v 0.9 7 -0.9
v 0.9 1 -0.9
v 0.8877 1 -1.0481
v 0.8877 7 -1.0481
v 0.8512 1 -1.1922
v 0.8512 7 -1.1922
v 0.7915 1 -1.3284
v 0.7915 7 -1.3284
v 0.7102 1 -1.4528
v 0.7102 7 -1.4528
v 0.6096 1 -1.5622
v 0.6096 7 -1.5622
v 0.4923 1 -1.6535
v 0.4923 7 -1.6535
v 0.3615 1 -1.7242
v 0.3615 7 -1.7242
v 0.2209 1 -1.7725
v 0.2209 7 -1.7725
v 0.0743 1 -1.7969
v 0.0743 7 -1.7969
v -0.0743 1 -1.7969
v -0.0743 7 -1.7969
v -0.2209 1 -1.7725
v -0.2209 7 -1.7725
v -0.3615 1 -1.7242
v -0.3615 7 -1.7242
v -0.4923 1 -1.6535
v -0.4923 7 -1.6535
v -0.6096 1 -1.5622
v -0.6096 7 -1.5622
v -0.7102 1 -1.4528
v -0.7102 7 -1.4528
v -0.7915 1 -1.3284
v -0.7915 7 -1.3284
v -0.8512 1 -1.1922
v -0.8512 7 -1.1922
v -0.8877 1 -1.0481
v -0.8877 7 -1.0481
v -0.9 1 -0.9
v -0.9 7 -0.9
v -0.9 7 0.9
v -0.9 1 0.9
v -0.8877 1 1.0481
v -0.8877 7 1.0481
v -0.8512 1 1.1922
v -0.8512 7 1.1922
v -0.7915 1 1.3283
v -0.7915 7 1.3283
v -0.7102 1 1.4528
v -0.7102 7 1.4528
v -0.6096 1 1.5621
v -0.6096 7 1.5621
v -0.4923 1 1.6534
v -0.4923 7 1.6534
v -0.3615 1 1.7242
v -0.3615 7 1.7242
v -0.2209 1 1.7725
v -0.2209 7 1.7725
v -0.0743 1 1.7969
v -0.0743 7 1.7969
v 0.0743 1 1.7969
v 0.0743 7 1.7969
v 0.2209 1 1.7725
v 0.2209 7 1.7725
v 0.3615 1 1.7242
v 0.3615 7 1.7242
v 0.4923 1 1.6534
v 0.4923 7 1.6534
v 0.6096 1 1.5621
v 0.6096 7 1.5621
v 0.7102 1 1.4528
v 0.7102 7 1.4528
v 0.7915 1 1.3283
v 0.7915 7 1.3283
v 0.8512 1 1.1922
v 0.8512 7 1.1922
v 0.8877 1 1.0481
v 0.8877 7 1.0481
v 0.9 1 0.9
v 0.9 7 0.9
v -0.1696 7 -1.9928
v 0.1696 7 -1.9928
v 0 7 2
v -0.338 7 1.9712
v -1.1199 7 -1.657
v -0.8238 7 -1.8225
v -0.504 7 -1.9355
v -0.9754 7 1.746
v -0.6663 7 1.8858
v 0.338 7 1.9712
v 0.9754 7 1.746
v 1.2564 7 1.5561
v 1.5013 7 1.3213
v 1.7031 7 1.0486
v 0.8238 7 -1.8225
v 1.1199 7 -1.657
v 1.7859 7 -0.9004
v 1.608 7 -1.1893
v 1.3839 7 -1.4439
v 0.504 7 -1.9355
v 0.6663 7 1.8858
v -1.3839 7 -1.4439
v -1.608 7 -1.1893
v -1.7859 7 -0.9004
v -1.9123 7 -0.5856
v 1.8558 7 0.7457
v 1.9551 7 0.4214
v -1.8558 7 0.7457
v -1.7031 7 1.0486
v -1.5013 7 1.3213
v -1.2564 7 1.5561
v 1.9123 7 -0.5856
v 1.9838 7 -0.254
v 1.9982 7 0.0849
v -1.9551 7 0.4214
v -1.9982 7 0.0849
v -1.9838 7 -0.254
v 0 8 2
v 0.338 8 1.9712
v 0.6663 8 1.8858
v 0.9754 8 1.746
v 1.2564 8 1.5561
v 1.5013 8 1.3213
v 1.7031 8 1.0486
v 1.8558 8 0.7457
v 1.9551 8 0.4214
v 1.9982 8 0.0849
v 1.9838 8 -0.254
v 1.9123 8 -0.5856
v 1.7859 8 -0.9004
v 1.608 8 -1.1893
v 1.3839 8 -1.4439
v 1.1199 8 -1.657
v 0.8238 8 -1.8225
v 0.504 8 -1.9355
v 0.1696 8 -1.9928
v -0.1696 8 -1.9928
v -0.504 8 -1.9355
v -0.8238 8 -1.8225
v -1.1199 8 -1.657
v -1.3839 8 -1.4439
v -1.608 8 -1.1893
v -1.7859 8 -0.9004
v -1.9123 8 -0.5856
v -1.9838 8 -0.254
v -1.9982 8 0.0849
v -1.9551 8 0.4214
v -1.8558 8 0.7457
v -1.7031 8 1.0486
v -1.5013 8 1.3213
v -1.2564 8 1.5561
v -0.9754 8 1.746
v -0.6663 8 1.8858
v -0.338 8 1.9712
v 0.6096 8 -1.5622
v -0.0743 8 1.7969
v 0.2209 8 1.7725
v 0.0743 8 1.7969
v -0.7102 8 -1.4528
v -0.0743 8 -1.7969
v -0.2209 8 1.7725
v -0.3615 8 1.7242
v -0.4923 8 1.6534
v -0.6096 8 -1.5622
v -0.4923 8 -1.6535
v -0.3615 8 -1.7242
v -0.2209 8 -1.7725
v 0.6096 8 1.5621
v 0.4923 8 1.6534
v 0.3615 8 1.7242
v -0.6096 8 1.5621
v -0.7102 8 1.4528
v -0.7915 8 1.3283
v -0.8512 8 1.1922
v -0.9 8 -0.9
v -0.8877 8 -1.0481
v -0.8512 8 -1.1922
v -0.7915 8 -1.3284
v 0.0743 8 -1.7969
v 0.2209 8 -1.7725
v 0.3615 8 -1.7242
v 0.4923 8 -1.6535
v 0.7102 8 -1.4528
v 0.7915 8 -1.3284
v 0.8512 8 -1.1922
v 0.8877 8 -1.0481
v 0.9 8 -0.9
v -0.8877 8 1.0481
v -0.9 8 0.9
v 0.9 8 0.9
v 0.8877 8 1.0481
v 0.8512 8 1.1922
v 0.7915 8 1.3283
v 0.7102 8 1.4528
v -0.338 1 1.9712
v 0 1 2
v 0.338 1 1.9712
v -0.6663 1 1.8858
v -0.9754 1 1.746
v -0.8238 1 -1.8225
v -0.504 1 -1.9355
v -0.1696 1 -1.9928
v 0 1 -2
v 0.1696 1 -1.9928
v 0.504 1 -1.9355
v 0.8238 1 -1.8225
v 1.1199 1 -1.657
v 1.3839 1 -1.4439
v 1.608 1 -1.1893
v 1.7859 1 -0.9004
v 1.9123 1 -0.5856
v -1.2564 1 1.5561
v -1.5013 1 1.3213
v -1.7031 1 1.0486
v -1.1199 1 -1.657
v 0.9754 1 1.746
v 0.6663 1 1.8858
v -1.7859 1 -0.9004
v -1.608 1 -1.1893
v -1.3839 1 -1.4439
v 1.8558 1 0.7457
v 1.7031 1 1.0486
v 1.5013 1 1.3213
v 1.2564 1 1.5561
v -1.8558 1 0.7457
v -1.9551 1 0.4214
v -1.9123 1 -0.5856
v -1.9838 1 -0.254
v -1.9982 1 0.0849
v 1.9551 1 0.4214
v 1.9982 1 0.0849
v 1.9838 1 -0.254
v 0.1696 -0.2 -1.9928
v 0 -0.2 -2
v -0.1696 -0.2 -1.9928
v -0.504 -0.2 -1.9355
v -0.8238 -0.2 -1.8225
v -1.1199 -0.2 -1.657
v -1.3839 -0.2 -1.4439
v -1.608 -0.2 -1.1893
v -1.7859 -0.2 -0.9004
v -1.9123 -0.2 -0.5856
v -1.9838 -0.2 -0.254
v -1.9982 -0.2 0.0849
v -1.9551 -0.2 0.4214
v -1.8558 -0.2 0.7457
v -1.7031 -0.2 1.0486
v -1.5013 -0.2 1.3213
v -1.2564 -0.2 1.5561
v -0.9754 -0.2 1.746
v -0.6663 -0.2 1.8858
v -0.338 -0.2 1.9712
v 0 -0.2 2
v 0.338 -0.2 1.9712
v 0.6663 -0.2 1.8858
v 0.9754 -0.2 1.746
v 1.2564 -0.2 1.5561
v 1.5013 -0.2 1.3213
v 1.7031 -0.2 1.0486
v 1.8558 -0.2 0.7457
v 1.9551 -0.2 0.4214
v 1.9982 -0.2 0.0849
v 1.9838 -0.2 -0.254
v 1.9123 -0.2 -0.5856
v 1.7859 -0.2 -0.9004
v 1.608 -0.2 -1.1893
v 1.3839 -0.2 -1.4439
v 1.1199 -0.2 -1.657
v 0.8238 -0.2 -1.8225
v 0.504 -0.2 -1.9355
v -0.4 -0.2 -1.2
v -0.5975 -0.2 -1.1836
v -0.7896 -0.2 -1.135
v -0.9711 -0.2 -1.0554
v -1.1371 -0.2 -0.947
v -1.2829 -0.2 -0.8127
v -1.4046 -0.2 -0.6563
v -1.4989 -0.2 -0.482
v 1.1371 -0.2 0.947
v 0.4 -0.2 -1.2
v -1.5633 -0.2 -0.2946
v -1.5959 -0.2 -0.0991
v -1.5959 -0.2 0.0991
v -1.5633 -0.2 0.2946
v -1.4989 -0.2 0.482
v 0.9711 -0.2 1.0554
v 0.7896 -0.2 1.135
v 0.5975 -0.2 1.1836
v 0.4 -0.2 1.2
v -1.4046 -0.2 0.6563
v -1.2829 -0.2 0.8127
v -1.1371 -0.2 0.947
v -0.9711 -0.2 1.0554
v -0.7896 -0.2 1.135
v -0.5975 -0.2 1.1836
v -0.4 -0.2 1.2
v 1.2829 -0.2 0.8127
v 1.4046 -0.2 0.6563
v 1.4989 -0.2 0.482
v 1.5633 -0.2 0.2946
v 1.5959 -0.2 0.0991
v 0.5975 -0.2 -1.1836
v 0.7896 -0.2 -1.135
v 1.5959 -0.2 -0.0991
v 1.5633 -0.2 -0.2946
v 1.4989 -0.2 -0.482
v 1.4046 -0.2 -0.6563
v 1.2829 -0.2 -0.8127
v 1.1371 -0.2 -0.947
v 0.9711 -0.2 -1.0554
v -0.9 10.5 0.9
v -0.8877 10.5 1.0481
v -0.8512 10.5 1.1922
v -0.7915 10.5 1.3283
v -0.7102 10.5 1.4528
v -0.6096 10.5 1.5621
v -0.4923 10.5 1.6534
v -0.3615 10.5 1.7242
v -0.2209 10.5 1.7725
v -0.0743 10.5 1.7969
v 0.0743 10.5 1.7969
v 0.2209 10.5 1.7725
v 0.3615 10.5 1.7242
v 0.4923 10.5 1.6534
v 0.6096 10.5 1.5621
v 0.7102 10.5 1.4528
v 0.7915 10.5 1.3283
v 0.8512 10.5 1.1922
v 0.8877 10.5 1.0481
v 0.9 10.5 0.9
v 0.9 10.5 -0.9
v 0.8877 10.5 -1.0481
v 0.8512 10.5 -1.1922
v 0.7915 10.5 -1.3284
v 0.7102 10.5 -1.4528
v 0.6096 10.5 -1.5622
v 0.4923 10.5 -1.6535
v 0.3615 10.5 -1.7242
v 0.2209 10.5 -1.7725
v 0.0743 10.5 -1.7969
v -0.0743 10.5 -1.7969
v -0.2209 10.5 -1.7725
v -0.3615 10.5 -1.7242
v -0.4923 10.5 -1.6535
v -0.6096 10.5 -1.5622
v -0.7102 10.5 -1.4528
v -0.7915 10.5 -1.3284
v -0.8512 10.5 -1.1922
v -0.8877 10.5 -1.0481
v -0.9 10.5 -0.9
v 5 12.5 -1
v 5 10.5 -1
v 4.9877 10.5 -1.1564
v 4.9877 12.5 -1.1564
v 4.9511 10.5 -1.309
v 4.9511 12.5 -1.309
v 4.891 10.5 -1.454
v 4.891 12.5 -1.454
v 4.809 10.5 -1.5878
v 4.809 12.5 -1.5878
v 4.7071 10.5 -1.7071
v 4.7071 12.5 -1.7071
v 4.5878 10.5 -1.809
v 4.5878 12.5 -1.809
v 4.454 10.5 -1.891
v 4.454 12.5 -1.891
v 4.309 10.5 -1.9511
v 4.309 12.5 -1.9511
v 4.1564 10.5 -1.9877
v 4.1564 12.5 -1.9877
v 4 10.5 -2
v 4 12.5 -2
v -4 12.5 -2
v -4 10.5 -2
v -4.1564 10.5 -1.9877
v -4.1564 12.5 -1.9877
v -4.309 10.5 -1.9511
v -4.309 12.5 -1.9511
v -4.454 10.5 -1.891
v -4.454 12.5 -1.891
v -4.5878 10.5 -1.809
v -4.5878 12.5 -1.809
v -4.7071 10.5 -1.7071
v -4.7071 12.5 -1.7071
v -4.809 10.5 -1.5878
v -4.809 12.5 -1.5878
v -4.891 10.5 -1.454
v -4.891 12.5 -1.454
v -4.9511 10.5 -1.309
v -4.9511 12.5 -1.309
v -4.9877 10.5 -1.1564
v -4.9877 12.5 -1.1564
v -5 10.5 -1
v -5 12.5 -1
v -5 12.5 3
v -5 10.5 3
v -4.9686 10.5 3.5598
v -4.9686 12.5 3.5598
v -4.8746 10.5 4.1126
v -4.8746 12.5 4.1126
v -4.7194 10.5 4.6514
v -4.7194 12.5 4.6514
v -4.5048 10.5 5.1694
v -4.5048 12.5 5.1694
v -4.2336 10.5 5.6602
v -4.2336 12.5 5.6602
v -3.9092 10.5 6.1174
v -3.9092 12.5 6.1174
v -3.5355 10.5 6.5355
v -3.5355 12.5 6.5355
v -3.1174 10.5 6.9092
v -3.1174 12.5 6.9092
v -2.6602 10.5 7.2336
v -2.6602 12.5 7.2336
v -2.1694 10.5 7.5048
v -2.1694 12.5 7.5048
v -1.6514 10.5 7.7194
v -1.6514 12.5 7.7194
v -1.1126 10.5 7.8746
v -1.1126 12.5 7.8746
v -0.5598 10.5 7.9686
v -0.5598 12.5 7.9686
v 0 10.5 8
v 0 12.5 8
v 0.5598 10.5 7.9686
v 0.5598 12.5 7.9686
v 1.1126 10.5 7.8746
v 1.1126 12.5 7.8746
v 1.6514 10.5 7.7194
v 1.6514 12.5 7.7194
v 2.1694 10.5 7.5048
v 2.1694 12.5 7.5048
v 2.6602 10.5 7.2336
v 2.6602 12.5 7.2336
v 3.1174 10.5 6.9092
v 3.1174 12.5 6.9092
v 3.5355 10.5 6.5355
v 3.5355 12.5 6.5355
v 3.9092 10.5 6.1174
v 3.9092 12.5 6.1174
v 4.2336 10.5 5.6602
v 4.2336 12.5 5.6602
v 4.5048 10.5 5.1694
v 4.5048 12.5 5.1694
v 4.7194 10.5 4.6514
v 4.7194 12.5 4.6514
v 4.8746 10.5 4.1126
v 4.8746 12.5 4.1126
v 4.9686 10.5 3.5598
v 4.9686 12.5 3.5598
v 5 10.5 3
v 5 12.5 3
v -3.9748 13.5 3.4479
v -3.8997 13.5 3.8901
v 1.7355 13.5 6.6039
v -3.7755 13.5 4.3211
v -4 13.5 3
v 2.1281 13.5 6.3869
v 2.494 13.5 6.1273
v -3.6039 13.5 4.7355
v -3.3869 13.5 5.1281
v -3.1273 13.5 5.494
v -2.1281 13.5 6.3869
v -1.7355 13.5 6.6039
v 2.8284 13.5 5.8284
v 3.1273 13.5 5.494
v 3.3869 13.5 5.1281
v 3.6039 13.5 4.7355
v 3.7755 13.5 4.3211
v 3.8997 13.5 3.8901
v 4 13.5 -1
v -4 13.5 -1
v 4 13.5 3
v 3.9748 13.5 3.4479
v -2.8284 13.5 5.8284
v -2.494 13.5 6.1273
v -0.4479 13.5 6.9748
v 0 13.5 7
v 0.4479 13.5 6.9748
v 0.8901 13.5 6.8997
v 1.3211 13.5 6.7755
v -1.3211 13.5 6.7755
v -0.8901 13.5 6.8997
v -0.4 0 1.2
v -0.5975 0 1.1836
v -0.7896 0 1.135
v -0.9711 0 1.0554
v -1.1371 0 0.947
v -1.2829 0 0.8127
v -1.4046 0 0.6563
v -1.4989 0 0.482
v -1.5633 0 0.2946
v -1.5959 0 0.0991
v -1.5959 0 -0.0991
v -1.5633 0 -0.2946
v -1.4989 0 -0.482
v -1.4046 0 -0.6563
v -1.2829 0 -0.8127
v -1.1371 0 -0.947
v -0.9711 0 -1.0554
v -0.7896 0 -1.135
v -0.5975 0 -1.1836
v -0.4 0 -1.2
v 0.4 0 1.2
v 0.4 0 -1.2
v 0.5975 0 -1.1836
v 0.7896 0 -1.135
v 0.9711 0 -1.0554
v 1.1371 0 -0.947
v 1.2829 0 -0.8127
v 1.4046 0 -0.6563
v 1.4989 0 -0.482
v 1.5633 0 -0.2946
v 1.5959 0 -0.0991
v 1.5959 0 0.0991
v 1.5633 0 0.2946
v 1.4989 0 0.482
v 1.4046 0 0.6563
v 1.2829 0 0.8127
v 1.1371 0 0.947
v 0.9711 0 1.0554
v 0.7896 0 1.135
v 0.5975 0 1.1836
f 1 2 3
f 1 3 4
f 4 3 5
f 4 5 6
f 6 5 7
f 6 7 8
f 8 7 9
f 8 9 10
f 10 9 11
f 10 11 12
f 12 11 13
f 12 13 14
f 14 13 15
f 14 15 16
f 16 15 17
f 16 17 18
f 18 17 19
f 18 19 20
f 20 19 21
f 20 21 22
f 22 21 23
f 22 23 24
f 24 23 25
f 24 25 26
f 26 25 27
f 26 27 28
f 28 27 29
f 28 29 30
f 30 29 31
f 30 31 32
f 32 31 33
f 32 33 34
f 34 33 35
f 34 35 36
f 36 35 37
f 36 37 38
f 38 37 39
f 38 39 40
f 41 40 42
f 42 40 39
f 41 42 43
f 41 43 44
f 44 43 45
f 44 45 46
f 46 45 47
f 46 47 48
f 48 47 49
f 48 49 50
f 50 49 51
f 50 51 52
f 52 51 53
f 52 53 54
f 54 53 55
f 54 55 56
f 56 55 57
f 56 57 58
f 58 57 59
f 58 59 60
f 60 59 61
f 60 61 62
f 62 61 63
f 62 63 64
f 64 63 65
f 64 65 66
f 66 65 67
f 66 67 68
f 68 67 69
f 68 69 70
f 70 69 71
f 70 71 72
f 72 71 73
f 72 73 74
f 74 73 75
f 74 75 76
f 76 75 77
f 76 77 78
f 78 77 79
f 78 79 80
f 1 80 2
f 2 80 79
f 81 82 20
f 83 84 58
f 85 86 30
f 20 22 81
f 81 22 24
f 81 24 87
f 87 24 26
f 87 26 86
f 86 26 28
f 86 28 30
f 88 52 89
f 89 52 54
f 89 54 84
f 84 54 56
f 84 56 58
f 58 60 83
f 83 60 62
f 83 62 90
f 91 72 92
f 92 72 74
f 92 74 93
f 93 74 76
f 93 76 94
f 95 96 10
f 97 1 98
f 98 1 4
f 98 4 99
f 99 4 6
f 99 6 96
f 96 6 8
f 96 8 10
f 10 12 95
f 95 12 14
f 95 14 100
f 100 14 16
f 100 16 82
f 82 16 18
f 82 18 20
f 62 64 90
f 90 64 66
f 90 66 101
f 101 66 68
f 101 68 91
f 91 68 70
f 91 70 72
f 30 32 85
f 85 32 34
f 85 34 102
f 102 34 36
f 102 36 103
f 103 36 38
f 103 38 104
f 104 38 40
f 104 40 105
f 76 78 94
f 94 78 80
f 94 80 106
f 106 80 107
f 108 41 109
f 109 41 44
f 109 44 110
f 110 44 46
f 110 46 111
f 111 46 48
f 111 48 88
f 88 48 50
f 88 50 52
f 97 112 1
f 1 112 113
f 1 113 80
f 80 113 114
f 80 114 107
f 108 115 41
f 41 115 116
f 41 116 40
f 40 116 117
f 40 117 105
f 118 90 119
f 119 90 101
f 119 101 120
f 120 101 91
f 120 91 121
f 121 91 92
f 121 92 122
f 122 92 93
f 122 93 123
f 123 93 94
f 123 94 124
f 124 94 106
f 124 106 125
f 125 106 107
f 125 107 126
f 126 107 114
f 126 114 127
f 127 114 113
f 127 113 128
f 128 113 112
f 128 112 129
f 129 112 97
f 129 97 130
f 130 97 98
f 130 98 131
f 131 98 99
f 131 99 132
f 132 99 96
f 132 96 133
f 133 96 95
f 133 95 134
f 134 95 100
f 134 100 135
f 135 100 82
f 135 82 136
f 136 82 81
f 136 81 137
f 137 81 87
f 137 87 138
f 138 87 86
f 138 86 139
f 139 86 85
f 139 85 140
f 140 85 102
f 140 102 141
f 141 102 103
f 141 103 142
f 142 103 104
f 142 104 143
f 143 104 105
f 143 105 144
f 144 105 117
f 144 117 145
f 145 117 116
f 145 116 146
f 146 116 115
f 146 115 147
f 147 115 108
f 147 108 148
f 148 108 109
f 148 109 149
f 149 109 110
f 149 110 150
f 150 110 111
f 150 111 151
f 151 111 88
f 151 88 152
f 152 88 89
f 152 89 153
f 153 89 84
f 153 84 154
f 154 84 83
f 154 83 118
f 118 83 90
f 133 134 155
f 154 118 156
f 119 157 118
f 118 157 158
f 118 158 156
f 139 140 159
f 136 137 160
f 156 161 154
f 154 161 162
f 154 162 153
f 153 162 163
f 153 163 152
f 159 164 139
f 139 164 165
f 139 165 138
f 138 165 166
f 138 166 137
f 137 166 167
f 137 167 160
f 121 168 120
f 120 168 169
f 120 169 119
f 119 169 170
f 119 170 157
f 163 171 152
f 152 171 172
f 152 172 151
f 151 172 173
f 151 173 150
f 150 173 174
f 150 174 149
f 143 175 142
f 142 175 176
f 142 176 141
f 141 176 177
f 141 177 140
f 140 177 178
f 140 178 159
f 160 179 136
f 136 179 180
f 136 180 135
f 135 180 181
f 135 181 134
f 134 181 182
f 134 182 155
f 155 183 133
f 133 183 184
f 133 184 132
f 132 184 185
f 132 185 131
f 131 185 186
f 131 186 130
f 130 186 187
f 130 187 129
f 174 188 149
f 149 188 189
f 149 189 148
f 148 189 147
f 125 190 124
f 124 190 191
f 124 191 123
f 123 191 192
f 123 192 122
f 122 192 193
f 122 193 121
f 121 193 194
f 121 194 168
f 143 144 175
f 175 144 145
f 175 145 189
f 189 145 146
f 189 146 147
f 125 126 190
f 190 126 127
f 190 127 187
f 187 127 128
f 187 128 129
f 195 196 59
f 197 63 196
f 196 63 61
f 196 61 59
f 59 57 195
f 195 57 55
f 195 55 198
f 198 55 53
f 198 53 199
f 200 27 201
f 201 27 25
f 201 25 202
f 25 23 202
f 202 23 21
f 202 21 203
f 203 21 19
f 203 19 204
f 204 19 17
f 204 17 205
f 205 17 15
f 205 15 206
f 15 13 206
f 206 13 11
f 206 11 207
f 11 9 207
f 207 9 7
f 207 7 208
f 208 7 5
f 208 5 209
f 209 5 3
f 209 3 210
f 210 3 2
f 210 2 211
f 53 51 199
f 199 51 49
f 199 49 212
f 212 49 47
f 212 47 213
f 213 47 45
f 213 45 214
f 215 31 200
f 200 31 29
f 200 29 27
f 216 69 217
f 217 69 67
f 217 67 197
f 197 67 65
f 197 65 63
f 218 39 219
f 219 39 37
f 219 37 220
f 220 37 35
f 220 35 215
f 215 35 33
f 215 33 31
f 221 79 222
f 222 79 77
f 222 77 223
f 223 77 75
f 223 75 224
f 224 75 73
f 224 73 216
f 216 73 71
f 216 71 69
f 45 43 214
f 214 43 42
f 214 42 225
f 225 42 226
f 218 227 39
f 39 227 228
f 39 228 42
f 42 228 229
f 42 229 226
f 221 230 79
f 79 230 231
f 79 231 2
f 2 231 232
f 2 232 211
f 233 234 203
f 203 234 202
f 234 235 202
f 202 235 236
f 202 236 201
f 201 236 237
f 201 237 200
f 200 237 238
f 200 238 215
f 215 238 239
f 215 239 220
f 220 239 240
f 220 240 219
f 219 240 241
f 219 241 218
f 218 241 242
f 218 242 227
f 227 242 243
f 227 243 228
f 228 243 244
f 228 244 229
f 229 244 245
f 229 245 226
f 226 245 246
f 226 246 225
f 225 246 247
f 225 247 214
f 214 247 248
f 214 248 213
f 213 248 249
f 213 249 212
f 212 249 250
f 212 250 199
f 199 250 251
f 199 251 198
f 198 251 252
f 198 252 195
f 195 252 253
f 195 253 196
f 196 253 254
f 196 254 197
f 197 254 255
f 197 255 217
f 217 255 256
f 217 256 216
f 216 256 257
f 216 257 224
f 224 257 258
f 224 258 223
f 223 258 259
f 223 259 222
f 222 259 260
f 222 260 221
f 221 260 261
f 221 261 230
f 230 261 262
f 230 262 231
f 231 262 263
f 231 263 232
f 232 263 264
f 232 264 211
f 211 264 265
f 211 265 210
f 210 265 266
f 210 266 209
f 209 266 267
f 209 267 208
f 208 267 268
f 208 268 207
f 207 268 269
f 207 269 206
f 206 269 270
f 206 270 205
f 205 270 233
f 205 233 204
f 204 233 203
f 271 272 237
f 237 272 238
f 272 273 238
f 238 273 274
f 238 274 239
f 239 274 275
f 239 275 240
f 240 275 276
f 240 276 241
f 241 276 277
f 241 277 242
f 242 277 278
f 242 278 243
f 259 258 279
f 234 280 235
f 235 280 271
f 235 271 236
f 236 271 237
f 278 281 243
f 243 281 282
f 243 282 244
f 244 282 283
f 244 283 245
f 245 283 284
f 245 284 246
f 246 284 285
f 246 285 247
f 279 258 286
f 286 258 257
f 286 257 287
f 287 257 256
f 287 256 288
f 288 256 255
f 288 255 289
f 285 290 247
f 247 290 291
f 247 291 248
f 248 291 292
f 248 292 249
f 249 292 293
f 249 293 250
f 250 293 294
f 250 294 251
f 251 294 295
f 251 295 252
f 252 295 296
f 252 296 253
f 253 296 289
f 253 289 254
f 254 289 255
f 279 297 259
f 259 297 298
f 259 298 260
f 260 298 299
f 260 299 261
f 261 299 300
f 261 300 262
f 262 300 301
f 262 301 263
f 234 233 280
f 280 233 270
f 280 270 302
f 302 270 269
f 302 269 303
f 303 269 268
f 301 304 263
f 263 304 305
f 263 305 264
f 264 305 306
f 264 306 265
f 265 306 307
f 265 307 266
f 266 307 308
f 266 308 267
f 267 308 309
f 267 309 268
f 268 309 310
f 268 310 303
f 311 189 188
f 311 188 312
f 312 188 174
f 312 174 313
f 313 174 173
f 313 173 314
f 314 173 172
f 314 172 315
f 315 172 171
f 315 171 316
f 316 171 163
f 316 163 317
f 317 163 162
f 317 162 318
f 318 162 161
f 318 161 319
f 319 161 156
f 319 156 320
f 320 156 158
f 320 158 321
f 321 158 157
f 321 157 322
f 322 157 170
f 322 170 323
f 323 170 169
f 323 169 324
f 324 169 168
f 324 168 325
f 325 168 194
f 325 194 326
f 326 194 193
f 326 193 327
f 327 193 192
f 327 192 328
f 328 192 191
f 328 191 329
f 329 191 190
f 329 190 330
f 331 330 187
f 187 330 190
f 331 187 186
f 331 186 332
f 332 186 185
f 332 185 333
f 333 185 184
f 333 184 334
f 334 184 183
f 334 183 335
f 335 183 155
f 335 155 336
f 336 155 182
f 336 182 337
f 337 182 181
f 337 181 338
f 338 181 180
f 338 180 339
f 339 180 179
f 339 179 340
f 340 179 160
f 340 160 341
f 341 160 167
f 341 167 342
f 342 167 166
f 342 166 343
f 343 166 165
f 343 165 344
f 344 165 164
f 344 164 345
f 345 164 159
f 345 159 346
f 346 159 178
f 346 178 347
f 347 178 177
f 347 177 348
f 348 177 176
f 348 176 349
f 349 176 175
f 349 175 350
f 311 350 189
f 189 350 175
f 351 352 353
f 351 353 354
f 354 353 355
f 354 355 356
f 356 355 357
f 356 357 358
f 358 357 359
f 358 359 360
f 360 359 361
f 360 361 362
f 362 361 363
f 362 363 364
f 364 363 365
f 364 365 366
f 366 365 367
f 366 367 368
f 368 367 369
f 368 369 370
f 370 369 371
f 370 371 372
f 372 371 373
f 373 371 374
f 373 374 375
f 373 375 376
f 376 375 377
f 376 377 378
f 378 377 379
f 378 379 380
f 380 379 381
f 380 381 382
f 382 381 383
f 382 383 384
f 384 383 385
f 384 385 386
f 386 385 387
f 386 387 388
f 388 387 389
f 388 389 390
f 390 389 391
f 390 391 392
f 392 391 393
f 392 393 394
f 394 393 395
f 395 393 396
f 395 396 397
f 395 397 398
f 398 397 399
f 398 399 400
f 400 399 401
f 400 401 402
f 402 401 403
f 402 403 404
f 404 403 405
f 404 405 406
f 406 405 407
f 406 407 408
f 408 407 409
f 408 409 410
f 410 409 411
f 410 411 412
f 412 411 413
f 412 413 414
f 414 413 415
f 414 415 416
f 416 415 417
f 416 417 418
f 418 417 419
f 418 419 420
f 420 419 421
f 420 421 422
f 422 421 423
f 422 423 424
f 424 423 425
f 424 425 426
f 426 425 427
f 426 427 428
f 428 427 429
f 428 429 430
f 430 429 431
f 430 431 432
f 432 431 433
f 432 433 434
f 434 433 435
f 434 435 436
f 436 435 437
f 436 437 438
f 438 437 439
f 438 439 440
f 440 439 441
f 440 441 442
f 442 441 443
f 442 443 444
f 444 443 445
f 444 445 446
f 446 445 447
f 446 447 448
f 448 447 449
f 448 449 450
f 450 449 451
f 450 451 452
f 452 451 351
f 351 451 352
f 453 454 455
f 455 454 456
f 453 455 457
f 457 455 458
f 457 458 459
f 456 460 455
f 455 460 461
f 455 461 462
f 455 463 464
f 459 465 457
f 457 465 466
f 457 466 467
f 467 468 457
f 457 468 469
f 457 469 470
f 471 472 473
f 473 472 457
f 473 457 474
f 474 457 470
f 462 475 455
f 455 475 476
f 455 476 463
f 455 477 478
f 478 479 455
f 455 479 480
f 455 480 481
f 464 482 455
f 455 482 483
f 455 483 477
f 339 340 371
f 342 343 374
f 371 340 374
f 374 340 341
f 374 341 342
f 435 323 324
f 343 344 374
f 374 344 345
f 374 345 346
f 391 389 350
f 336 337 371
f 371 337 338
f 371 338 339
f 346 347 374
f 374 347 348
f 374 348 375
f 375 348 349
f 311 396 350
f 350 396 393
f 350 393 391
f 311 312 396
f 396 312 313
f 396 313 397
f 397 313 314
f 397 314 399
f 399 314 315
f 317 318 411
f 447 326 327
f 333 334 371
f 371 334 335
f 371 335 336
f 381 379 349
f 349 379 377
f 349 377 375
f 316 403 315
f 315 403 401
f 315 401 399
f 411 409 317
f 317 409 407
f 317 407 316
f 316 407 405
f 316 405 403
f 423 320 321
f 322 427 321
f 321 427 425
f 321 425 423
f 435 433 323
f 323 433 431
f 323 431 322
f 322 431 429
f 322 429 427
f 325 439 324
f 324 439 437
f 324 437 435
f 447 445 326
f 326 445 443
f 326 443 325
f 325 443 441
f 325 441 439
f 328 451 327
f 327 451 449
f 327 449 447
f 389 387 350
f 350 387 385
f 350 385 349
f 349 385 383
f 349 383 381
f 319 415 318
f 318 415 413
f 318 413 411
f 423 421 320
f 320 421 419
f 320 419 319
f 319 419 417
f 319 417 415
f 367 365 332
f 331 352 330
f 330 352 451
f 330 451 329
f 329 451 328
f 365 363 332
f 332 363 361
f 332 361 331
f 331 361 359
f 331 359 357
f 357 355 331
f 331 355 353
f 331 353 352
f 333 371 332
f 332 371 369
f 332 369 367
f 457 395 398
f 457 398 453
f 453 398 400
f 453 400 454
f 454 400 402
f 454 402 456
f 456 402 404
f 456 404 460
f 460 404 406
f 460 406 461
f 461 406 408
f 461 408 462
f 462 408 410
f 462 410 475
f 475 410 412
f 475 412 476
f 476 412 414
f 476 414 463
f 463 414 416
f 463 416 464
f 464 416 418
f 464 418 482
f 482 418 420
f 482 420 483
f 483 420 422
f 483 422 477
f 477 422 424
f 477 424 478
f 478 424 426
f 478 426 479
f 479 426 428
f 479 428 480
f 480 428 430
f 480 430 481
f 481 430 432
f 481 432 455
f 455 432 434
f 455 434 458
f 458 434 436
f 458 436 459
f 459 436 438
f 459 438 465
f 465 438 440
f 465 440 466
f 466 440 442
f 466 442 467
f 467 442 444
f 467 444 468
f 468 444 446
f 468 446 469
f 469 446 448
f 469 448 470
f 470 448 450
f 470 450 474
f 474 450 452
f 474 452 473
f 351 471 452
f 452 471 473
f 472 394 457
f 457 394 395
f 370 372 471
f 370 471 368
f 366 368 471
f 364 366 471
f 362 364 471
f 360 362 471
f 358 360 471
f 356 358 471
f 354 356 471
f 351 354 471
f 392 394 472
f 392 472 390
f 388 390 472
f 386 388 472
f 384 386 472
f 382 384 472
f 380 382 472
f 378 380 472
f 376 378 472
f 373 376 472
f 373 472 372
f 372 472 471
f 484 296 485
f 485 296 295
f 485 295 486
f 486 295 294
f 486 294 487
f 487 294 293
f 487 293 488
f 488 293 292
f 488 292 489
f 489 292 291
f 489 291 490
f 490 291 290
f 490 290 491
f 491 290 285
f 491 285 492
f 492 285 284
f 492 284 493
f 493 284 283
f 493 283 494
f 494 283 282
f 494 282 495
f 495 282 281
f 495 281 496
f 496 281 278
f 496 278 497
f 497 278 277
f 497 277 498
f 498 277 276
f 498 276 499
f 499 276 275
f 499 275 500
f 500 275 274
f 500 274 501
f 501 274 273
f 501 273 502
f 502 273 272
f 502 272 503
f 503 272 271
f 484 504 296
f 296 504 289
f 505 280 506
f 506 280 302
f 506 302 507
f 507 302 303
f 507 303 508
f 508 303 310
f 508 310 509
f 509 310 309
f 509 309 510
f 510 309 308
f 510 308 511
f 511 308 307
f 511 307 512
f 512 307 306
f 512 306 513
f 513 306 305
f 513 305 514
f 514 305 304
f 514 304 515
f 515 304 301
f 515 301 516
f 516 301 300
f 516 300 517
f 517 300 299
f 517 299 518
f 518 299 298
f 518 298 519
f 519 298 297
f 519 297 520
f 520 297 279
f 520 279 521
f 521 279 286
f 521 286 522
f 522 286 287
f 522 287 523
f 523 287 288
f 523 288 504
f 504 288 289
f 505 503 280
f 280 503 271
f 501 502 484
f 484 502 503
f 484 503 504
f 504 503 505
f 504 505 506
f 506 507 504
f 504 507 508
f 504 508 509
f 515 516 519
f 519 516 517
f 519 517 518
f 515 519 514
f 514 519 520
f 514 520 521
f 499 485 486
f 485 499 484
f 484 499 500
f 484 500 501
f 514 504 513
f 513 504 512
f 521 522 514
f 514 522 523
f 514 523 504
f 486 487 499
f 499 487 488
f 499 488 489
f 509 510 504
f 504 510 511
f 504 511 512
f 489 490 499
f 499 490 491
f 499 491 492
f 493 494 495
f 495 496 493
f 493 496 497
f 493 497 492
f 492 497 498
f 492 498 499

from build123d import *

# Parameters (mm, degrees)
EXTRUDE_1_DEPTH      = 8
SKETCH_2_R           = 2
EXTRUDE_2_DEPTH      = 1
EXTRUDE_3_DEPTH      = 0.2
EXTRUDE_3_DEPTH_BACK = 1
SKETCH_3_R           = 2
EXTRUDE_4_DEPTH      = 2.5
EXTRUDE_5_DEPTH      = 3
CHAMFER_1_SIZE       = 1
CUT_EXTRUDE_1_DEPTH  = 0.2


with BuildPart() as part:
    # 草图1 → 凸台-拉伸1 (new body)
    with BuildSketch(Plane(origin=(0, 0, 0), x_dir=(1, 0, 0), z_dir=(0, 1, 0))):
        with BuildLine():
            Line((0.9, 0.9), (0.9, -0.9))
            ThreePointArc((0.9, -0.9), (0, -1.8), (-0.9, -0.9))
            Line((-0.9, -0.9), (-0.9, 0.9))
            ThreePointArc((-0.9, 0.9), (0, 1.8), (0.9, 0.9))
        make_face()
    extrude(amount=EXTRUDE_1_DEPTH)

    # 草图2 → 凸台-拉伸2 (add)
    with BuildSketch(Plane(origin=(0, 8, 0), x_dir=(1, 0, 0), z_dir=(0, 1, 0))):
        with Locations(Location((0, 0, 0), (0, 0, 270))):
            Circle(SKETCH_2_R)
    extrude(amount=-EXTRUDE_2_DEPTH)

    # 草图3 → 凸台-拉伸3 (add, two sides: drawn at the far end of the back side and taken through both)
    with BuildSketch(Plane.XZ.offset(-EXTRUDE_3_DEPTH_BACK)):
        with Locations(Location((0, 0, 0), (0, 0, 90))):
            Circle(SKETCH_3_R)
    extrude(amount=EXTRUDE_3_DEPTH + EXTRUDE_3_DEPTH_BACK)

    # 草图6 → 凸台-拉伸4 (add)
    with BuildSketch(Plane(origin=(0, 8, 0), x_dir=(1, 0, 0), z_dir=(0, 1, 0))):
        with BuildLine():
            Line((-0.9, -0.9), (-0.9, 0.9))
            ThreePointArc((-0.9, 0.9), (0, 1.8), (0.9, 0.9))
            Line((0.9, 0.9), (0.9, -0.9))
            ThreePointArc((0.9, -0.9), (0, -1.8), (-0.9, -0.9))
        make_face()
    extrude(amount=EXTRUDE_4_DEPTH)

    # 草图7 → 凸台-拉伸5 (add)
    with BuildSketch(Plane(origin=(0, 10.5, 0), x_dir=(1, 0, 0), z_dir=(0, 1, 0))):
        with BuildLine():
            Line((-5, -3), (-5, 1))
            ThreePointArc((-5, 1), (-4.707106781, 1.707106781), (-4, 2))
            Line((-4, 2), (4, 2))
            ThreePointArc((4, 2), (4.707106781, 1.707106781), (5, 1))
            Line((5, 1), (5, -3))
            ThreePointArc((5, -3), (0, -8), (-5, -3))
        make_face()
    extrude(amount=EXTRUDE_5_DEPTH)

    # 倒角1
    chamfer_1_edges = [part.edges().sort_by_distance(p)[0] for p in [
        (4.707106781, 13.5, -1.707106781),
        (0, 13.5, -2),
        (-4.707106781, 13.5, -1.707106781),
        (-5, 13.5, 1),
        (0, 13.5, 8),
        (5, 13.5, 1),
    ]]
    chamfer(chamfer_1_edges, length=CHAMFER_1_SIZE - 0.0001)  # a hair under: the kernel refuses the full size

    # 草图8 → 切除-拉伸1 (cut)
    with BuildSketch(Plane.XZ.offset(0.2)):
        with BuildLine():
            Line((-0.4, 1.2), (0.4, 1.2))
            ThreePointArc((0.4, 1.2), (1.6, 0), (0.4, -1.2))
            Line((0.4, -1.2), (-0.4, -1.2))
            ThreePointArc((-0.4, -1.2), (-1.6, 0), (-0.4, 1.2))
        make_face()
    extrude(amount=-CUT_EXTRUDE_1_DEPTH, mode=Mode.SUBTRACT)


solid = part.part
